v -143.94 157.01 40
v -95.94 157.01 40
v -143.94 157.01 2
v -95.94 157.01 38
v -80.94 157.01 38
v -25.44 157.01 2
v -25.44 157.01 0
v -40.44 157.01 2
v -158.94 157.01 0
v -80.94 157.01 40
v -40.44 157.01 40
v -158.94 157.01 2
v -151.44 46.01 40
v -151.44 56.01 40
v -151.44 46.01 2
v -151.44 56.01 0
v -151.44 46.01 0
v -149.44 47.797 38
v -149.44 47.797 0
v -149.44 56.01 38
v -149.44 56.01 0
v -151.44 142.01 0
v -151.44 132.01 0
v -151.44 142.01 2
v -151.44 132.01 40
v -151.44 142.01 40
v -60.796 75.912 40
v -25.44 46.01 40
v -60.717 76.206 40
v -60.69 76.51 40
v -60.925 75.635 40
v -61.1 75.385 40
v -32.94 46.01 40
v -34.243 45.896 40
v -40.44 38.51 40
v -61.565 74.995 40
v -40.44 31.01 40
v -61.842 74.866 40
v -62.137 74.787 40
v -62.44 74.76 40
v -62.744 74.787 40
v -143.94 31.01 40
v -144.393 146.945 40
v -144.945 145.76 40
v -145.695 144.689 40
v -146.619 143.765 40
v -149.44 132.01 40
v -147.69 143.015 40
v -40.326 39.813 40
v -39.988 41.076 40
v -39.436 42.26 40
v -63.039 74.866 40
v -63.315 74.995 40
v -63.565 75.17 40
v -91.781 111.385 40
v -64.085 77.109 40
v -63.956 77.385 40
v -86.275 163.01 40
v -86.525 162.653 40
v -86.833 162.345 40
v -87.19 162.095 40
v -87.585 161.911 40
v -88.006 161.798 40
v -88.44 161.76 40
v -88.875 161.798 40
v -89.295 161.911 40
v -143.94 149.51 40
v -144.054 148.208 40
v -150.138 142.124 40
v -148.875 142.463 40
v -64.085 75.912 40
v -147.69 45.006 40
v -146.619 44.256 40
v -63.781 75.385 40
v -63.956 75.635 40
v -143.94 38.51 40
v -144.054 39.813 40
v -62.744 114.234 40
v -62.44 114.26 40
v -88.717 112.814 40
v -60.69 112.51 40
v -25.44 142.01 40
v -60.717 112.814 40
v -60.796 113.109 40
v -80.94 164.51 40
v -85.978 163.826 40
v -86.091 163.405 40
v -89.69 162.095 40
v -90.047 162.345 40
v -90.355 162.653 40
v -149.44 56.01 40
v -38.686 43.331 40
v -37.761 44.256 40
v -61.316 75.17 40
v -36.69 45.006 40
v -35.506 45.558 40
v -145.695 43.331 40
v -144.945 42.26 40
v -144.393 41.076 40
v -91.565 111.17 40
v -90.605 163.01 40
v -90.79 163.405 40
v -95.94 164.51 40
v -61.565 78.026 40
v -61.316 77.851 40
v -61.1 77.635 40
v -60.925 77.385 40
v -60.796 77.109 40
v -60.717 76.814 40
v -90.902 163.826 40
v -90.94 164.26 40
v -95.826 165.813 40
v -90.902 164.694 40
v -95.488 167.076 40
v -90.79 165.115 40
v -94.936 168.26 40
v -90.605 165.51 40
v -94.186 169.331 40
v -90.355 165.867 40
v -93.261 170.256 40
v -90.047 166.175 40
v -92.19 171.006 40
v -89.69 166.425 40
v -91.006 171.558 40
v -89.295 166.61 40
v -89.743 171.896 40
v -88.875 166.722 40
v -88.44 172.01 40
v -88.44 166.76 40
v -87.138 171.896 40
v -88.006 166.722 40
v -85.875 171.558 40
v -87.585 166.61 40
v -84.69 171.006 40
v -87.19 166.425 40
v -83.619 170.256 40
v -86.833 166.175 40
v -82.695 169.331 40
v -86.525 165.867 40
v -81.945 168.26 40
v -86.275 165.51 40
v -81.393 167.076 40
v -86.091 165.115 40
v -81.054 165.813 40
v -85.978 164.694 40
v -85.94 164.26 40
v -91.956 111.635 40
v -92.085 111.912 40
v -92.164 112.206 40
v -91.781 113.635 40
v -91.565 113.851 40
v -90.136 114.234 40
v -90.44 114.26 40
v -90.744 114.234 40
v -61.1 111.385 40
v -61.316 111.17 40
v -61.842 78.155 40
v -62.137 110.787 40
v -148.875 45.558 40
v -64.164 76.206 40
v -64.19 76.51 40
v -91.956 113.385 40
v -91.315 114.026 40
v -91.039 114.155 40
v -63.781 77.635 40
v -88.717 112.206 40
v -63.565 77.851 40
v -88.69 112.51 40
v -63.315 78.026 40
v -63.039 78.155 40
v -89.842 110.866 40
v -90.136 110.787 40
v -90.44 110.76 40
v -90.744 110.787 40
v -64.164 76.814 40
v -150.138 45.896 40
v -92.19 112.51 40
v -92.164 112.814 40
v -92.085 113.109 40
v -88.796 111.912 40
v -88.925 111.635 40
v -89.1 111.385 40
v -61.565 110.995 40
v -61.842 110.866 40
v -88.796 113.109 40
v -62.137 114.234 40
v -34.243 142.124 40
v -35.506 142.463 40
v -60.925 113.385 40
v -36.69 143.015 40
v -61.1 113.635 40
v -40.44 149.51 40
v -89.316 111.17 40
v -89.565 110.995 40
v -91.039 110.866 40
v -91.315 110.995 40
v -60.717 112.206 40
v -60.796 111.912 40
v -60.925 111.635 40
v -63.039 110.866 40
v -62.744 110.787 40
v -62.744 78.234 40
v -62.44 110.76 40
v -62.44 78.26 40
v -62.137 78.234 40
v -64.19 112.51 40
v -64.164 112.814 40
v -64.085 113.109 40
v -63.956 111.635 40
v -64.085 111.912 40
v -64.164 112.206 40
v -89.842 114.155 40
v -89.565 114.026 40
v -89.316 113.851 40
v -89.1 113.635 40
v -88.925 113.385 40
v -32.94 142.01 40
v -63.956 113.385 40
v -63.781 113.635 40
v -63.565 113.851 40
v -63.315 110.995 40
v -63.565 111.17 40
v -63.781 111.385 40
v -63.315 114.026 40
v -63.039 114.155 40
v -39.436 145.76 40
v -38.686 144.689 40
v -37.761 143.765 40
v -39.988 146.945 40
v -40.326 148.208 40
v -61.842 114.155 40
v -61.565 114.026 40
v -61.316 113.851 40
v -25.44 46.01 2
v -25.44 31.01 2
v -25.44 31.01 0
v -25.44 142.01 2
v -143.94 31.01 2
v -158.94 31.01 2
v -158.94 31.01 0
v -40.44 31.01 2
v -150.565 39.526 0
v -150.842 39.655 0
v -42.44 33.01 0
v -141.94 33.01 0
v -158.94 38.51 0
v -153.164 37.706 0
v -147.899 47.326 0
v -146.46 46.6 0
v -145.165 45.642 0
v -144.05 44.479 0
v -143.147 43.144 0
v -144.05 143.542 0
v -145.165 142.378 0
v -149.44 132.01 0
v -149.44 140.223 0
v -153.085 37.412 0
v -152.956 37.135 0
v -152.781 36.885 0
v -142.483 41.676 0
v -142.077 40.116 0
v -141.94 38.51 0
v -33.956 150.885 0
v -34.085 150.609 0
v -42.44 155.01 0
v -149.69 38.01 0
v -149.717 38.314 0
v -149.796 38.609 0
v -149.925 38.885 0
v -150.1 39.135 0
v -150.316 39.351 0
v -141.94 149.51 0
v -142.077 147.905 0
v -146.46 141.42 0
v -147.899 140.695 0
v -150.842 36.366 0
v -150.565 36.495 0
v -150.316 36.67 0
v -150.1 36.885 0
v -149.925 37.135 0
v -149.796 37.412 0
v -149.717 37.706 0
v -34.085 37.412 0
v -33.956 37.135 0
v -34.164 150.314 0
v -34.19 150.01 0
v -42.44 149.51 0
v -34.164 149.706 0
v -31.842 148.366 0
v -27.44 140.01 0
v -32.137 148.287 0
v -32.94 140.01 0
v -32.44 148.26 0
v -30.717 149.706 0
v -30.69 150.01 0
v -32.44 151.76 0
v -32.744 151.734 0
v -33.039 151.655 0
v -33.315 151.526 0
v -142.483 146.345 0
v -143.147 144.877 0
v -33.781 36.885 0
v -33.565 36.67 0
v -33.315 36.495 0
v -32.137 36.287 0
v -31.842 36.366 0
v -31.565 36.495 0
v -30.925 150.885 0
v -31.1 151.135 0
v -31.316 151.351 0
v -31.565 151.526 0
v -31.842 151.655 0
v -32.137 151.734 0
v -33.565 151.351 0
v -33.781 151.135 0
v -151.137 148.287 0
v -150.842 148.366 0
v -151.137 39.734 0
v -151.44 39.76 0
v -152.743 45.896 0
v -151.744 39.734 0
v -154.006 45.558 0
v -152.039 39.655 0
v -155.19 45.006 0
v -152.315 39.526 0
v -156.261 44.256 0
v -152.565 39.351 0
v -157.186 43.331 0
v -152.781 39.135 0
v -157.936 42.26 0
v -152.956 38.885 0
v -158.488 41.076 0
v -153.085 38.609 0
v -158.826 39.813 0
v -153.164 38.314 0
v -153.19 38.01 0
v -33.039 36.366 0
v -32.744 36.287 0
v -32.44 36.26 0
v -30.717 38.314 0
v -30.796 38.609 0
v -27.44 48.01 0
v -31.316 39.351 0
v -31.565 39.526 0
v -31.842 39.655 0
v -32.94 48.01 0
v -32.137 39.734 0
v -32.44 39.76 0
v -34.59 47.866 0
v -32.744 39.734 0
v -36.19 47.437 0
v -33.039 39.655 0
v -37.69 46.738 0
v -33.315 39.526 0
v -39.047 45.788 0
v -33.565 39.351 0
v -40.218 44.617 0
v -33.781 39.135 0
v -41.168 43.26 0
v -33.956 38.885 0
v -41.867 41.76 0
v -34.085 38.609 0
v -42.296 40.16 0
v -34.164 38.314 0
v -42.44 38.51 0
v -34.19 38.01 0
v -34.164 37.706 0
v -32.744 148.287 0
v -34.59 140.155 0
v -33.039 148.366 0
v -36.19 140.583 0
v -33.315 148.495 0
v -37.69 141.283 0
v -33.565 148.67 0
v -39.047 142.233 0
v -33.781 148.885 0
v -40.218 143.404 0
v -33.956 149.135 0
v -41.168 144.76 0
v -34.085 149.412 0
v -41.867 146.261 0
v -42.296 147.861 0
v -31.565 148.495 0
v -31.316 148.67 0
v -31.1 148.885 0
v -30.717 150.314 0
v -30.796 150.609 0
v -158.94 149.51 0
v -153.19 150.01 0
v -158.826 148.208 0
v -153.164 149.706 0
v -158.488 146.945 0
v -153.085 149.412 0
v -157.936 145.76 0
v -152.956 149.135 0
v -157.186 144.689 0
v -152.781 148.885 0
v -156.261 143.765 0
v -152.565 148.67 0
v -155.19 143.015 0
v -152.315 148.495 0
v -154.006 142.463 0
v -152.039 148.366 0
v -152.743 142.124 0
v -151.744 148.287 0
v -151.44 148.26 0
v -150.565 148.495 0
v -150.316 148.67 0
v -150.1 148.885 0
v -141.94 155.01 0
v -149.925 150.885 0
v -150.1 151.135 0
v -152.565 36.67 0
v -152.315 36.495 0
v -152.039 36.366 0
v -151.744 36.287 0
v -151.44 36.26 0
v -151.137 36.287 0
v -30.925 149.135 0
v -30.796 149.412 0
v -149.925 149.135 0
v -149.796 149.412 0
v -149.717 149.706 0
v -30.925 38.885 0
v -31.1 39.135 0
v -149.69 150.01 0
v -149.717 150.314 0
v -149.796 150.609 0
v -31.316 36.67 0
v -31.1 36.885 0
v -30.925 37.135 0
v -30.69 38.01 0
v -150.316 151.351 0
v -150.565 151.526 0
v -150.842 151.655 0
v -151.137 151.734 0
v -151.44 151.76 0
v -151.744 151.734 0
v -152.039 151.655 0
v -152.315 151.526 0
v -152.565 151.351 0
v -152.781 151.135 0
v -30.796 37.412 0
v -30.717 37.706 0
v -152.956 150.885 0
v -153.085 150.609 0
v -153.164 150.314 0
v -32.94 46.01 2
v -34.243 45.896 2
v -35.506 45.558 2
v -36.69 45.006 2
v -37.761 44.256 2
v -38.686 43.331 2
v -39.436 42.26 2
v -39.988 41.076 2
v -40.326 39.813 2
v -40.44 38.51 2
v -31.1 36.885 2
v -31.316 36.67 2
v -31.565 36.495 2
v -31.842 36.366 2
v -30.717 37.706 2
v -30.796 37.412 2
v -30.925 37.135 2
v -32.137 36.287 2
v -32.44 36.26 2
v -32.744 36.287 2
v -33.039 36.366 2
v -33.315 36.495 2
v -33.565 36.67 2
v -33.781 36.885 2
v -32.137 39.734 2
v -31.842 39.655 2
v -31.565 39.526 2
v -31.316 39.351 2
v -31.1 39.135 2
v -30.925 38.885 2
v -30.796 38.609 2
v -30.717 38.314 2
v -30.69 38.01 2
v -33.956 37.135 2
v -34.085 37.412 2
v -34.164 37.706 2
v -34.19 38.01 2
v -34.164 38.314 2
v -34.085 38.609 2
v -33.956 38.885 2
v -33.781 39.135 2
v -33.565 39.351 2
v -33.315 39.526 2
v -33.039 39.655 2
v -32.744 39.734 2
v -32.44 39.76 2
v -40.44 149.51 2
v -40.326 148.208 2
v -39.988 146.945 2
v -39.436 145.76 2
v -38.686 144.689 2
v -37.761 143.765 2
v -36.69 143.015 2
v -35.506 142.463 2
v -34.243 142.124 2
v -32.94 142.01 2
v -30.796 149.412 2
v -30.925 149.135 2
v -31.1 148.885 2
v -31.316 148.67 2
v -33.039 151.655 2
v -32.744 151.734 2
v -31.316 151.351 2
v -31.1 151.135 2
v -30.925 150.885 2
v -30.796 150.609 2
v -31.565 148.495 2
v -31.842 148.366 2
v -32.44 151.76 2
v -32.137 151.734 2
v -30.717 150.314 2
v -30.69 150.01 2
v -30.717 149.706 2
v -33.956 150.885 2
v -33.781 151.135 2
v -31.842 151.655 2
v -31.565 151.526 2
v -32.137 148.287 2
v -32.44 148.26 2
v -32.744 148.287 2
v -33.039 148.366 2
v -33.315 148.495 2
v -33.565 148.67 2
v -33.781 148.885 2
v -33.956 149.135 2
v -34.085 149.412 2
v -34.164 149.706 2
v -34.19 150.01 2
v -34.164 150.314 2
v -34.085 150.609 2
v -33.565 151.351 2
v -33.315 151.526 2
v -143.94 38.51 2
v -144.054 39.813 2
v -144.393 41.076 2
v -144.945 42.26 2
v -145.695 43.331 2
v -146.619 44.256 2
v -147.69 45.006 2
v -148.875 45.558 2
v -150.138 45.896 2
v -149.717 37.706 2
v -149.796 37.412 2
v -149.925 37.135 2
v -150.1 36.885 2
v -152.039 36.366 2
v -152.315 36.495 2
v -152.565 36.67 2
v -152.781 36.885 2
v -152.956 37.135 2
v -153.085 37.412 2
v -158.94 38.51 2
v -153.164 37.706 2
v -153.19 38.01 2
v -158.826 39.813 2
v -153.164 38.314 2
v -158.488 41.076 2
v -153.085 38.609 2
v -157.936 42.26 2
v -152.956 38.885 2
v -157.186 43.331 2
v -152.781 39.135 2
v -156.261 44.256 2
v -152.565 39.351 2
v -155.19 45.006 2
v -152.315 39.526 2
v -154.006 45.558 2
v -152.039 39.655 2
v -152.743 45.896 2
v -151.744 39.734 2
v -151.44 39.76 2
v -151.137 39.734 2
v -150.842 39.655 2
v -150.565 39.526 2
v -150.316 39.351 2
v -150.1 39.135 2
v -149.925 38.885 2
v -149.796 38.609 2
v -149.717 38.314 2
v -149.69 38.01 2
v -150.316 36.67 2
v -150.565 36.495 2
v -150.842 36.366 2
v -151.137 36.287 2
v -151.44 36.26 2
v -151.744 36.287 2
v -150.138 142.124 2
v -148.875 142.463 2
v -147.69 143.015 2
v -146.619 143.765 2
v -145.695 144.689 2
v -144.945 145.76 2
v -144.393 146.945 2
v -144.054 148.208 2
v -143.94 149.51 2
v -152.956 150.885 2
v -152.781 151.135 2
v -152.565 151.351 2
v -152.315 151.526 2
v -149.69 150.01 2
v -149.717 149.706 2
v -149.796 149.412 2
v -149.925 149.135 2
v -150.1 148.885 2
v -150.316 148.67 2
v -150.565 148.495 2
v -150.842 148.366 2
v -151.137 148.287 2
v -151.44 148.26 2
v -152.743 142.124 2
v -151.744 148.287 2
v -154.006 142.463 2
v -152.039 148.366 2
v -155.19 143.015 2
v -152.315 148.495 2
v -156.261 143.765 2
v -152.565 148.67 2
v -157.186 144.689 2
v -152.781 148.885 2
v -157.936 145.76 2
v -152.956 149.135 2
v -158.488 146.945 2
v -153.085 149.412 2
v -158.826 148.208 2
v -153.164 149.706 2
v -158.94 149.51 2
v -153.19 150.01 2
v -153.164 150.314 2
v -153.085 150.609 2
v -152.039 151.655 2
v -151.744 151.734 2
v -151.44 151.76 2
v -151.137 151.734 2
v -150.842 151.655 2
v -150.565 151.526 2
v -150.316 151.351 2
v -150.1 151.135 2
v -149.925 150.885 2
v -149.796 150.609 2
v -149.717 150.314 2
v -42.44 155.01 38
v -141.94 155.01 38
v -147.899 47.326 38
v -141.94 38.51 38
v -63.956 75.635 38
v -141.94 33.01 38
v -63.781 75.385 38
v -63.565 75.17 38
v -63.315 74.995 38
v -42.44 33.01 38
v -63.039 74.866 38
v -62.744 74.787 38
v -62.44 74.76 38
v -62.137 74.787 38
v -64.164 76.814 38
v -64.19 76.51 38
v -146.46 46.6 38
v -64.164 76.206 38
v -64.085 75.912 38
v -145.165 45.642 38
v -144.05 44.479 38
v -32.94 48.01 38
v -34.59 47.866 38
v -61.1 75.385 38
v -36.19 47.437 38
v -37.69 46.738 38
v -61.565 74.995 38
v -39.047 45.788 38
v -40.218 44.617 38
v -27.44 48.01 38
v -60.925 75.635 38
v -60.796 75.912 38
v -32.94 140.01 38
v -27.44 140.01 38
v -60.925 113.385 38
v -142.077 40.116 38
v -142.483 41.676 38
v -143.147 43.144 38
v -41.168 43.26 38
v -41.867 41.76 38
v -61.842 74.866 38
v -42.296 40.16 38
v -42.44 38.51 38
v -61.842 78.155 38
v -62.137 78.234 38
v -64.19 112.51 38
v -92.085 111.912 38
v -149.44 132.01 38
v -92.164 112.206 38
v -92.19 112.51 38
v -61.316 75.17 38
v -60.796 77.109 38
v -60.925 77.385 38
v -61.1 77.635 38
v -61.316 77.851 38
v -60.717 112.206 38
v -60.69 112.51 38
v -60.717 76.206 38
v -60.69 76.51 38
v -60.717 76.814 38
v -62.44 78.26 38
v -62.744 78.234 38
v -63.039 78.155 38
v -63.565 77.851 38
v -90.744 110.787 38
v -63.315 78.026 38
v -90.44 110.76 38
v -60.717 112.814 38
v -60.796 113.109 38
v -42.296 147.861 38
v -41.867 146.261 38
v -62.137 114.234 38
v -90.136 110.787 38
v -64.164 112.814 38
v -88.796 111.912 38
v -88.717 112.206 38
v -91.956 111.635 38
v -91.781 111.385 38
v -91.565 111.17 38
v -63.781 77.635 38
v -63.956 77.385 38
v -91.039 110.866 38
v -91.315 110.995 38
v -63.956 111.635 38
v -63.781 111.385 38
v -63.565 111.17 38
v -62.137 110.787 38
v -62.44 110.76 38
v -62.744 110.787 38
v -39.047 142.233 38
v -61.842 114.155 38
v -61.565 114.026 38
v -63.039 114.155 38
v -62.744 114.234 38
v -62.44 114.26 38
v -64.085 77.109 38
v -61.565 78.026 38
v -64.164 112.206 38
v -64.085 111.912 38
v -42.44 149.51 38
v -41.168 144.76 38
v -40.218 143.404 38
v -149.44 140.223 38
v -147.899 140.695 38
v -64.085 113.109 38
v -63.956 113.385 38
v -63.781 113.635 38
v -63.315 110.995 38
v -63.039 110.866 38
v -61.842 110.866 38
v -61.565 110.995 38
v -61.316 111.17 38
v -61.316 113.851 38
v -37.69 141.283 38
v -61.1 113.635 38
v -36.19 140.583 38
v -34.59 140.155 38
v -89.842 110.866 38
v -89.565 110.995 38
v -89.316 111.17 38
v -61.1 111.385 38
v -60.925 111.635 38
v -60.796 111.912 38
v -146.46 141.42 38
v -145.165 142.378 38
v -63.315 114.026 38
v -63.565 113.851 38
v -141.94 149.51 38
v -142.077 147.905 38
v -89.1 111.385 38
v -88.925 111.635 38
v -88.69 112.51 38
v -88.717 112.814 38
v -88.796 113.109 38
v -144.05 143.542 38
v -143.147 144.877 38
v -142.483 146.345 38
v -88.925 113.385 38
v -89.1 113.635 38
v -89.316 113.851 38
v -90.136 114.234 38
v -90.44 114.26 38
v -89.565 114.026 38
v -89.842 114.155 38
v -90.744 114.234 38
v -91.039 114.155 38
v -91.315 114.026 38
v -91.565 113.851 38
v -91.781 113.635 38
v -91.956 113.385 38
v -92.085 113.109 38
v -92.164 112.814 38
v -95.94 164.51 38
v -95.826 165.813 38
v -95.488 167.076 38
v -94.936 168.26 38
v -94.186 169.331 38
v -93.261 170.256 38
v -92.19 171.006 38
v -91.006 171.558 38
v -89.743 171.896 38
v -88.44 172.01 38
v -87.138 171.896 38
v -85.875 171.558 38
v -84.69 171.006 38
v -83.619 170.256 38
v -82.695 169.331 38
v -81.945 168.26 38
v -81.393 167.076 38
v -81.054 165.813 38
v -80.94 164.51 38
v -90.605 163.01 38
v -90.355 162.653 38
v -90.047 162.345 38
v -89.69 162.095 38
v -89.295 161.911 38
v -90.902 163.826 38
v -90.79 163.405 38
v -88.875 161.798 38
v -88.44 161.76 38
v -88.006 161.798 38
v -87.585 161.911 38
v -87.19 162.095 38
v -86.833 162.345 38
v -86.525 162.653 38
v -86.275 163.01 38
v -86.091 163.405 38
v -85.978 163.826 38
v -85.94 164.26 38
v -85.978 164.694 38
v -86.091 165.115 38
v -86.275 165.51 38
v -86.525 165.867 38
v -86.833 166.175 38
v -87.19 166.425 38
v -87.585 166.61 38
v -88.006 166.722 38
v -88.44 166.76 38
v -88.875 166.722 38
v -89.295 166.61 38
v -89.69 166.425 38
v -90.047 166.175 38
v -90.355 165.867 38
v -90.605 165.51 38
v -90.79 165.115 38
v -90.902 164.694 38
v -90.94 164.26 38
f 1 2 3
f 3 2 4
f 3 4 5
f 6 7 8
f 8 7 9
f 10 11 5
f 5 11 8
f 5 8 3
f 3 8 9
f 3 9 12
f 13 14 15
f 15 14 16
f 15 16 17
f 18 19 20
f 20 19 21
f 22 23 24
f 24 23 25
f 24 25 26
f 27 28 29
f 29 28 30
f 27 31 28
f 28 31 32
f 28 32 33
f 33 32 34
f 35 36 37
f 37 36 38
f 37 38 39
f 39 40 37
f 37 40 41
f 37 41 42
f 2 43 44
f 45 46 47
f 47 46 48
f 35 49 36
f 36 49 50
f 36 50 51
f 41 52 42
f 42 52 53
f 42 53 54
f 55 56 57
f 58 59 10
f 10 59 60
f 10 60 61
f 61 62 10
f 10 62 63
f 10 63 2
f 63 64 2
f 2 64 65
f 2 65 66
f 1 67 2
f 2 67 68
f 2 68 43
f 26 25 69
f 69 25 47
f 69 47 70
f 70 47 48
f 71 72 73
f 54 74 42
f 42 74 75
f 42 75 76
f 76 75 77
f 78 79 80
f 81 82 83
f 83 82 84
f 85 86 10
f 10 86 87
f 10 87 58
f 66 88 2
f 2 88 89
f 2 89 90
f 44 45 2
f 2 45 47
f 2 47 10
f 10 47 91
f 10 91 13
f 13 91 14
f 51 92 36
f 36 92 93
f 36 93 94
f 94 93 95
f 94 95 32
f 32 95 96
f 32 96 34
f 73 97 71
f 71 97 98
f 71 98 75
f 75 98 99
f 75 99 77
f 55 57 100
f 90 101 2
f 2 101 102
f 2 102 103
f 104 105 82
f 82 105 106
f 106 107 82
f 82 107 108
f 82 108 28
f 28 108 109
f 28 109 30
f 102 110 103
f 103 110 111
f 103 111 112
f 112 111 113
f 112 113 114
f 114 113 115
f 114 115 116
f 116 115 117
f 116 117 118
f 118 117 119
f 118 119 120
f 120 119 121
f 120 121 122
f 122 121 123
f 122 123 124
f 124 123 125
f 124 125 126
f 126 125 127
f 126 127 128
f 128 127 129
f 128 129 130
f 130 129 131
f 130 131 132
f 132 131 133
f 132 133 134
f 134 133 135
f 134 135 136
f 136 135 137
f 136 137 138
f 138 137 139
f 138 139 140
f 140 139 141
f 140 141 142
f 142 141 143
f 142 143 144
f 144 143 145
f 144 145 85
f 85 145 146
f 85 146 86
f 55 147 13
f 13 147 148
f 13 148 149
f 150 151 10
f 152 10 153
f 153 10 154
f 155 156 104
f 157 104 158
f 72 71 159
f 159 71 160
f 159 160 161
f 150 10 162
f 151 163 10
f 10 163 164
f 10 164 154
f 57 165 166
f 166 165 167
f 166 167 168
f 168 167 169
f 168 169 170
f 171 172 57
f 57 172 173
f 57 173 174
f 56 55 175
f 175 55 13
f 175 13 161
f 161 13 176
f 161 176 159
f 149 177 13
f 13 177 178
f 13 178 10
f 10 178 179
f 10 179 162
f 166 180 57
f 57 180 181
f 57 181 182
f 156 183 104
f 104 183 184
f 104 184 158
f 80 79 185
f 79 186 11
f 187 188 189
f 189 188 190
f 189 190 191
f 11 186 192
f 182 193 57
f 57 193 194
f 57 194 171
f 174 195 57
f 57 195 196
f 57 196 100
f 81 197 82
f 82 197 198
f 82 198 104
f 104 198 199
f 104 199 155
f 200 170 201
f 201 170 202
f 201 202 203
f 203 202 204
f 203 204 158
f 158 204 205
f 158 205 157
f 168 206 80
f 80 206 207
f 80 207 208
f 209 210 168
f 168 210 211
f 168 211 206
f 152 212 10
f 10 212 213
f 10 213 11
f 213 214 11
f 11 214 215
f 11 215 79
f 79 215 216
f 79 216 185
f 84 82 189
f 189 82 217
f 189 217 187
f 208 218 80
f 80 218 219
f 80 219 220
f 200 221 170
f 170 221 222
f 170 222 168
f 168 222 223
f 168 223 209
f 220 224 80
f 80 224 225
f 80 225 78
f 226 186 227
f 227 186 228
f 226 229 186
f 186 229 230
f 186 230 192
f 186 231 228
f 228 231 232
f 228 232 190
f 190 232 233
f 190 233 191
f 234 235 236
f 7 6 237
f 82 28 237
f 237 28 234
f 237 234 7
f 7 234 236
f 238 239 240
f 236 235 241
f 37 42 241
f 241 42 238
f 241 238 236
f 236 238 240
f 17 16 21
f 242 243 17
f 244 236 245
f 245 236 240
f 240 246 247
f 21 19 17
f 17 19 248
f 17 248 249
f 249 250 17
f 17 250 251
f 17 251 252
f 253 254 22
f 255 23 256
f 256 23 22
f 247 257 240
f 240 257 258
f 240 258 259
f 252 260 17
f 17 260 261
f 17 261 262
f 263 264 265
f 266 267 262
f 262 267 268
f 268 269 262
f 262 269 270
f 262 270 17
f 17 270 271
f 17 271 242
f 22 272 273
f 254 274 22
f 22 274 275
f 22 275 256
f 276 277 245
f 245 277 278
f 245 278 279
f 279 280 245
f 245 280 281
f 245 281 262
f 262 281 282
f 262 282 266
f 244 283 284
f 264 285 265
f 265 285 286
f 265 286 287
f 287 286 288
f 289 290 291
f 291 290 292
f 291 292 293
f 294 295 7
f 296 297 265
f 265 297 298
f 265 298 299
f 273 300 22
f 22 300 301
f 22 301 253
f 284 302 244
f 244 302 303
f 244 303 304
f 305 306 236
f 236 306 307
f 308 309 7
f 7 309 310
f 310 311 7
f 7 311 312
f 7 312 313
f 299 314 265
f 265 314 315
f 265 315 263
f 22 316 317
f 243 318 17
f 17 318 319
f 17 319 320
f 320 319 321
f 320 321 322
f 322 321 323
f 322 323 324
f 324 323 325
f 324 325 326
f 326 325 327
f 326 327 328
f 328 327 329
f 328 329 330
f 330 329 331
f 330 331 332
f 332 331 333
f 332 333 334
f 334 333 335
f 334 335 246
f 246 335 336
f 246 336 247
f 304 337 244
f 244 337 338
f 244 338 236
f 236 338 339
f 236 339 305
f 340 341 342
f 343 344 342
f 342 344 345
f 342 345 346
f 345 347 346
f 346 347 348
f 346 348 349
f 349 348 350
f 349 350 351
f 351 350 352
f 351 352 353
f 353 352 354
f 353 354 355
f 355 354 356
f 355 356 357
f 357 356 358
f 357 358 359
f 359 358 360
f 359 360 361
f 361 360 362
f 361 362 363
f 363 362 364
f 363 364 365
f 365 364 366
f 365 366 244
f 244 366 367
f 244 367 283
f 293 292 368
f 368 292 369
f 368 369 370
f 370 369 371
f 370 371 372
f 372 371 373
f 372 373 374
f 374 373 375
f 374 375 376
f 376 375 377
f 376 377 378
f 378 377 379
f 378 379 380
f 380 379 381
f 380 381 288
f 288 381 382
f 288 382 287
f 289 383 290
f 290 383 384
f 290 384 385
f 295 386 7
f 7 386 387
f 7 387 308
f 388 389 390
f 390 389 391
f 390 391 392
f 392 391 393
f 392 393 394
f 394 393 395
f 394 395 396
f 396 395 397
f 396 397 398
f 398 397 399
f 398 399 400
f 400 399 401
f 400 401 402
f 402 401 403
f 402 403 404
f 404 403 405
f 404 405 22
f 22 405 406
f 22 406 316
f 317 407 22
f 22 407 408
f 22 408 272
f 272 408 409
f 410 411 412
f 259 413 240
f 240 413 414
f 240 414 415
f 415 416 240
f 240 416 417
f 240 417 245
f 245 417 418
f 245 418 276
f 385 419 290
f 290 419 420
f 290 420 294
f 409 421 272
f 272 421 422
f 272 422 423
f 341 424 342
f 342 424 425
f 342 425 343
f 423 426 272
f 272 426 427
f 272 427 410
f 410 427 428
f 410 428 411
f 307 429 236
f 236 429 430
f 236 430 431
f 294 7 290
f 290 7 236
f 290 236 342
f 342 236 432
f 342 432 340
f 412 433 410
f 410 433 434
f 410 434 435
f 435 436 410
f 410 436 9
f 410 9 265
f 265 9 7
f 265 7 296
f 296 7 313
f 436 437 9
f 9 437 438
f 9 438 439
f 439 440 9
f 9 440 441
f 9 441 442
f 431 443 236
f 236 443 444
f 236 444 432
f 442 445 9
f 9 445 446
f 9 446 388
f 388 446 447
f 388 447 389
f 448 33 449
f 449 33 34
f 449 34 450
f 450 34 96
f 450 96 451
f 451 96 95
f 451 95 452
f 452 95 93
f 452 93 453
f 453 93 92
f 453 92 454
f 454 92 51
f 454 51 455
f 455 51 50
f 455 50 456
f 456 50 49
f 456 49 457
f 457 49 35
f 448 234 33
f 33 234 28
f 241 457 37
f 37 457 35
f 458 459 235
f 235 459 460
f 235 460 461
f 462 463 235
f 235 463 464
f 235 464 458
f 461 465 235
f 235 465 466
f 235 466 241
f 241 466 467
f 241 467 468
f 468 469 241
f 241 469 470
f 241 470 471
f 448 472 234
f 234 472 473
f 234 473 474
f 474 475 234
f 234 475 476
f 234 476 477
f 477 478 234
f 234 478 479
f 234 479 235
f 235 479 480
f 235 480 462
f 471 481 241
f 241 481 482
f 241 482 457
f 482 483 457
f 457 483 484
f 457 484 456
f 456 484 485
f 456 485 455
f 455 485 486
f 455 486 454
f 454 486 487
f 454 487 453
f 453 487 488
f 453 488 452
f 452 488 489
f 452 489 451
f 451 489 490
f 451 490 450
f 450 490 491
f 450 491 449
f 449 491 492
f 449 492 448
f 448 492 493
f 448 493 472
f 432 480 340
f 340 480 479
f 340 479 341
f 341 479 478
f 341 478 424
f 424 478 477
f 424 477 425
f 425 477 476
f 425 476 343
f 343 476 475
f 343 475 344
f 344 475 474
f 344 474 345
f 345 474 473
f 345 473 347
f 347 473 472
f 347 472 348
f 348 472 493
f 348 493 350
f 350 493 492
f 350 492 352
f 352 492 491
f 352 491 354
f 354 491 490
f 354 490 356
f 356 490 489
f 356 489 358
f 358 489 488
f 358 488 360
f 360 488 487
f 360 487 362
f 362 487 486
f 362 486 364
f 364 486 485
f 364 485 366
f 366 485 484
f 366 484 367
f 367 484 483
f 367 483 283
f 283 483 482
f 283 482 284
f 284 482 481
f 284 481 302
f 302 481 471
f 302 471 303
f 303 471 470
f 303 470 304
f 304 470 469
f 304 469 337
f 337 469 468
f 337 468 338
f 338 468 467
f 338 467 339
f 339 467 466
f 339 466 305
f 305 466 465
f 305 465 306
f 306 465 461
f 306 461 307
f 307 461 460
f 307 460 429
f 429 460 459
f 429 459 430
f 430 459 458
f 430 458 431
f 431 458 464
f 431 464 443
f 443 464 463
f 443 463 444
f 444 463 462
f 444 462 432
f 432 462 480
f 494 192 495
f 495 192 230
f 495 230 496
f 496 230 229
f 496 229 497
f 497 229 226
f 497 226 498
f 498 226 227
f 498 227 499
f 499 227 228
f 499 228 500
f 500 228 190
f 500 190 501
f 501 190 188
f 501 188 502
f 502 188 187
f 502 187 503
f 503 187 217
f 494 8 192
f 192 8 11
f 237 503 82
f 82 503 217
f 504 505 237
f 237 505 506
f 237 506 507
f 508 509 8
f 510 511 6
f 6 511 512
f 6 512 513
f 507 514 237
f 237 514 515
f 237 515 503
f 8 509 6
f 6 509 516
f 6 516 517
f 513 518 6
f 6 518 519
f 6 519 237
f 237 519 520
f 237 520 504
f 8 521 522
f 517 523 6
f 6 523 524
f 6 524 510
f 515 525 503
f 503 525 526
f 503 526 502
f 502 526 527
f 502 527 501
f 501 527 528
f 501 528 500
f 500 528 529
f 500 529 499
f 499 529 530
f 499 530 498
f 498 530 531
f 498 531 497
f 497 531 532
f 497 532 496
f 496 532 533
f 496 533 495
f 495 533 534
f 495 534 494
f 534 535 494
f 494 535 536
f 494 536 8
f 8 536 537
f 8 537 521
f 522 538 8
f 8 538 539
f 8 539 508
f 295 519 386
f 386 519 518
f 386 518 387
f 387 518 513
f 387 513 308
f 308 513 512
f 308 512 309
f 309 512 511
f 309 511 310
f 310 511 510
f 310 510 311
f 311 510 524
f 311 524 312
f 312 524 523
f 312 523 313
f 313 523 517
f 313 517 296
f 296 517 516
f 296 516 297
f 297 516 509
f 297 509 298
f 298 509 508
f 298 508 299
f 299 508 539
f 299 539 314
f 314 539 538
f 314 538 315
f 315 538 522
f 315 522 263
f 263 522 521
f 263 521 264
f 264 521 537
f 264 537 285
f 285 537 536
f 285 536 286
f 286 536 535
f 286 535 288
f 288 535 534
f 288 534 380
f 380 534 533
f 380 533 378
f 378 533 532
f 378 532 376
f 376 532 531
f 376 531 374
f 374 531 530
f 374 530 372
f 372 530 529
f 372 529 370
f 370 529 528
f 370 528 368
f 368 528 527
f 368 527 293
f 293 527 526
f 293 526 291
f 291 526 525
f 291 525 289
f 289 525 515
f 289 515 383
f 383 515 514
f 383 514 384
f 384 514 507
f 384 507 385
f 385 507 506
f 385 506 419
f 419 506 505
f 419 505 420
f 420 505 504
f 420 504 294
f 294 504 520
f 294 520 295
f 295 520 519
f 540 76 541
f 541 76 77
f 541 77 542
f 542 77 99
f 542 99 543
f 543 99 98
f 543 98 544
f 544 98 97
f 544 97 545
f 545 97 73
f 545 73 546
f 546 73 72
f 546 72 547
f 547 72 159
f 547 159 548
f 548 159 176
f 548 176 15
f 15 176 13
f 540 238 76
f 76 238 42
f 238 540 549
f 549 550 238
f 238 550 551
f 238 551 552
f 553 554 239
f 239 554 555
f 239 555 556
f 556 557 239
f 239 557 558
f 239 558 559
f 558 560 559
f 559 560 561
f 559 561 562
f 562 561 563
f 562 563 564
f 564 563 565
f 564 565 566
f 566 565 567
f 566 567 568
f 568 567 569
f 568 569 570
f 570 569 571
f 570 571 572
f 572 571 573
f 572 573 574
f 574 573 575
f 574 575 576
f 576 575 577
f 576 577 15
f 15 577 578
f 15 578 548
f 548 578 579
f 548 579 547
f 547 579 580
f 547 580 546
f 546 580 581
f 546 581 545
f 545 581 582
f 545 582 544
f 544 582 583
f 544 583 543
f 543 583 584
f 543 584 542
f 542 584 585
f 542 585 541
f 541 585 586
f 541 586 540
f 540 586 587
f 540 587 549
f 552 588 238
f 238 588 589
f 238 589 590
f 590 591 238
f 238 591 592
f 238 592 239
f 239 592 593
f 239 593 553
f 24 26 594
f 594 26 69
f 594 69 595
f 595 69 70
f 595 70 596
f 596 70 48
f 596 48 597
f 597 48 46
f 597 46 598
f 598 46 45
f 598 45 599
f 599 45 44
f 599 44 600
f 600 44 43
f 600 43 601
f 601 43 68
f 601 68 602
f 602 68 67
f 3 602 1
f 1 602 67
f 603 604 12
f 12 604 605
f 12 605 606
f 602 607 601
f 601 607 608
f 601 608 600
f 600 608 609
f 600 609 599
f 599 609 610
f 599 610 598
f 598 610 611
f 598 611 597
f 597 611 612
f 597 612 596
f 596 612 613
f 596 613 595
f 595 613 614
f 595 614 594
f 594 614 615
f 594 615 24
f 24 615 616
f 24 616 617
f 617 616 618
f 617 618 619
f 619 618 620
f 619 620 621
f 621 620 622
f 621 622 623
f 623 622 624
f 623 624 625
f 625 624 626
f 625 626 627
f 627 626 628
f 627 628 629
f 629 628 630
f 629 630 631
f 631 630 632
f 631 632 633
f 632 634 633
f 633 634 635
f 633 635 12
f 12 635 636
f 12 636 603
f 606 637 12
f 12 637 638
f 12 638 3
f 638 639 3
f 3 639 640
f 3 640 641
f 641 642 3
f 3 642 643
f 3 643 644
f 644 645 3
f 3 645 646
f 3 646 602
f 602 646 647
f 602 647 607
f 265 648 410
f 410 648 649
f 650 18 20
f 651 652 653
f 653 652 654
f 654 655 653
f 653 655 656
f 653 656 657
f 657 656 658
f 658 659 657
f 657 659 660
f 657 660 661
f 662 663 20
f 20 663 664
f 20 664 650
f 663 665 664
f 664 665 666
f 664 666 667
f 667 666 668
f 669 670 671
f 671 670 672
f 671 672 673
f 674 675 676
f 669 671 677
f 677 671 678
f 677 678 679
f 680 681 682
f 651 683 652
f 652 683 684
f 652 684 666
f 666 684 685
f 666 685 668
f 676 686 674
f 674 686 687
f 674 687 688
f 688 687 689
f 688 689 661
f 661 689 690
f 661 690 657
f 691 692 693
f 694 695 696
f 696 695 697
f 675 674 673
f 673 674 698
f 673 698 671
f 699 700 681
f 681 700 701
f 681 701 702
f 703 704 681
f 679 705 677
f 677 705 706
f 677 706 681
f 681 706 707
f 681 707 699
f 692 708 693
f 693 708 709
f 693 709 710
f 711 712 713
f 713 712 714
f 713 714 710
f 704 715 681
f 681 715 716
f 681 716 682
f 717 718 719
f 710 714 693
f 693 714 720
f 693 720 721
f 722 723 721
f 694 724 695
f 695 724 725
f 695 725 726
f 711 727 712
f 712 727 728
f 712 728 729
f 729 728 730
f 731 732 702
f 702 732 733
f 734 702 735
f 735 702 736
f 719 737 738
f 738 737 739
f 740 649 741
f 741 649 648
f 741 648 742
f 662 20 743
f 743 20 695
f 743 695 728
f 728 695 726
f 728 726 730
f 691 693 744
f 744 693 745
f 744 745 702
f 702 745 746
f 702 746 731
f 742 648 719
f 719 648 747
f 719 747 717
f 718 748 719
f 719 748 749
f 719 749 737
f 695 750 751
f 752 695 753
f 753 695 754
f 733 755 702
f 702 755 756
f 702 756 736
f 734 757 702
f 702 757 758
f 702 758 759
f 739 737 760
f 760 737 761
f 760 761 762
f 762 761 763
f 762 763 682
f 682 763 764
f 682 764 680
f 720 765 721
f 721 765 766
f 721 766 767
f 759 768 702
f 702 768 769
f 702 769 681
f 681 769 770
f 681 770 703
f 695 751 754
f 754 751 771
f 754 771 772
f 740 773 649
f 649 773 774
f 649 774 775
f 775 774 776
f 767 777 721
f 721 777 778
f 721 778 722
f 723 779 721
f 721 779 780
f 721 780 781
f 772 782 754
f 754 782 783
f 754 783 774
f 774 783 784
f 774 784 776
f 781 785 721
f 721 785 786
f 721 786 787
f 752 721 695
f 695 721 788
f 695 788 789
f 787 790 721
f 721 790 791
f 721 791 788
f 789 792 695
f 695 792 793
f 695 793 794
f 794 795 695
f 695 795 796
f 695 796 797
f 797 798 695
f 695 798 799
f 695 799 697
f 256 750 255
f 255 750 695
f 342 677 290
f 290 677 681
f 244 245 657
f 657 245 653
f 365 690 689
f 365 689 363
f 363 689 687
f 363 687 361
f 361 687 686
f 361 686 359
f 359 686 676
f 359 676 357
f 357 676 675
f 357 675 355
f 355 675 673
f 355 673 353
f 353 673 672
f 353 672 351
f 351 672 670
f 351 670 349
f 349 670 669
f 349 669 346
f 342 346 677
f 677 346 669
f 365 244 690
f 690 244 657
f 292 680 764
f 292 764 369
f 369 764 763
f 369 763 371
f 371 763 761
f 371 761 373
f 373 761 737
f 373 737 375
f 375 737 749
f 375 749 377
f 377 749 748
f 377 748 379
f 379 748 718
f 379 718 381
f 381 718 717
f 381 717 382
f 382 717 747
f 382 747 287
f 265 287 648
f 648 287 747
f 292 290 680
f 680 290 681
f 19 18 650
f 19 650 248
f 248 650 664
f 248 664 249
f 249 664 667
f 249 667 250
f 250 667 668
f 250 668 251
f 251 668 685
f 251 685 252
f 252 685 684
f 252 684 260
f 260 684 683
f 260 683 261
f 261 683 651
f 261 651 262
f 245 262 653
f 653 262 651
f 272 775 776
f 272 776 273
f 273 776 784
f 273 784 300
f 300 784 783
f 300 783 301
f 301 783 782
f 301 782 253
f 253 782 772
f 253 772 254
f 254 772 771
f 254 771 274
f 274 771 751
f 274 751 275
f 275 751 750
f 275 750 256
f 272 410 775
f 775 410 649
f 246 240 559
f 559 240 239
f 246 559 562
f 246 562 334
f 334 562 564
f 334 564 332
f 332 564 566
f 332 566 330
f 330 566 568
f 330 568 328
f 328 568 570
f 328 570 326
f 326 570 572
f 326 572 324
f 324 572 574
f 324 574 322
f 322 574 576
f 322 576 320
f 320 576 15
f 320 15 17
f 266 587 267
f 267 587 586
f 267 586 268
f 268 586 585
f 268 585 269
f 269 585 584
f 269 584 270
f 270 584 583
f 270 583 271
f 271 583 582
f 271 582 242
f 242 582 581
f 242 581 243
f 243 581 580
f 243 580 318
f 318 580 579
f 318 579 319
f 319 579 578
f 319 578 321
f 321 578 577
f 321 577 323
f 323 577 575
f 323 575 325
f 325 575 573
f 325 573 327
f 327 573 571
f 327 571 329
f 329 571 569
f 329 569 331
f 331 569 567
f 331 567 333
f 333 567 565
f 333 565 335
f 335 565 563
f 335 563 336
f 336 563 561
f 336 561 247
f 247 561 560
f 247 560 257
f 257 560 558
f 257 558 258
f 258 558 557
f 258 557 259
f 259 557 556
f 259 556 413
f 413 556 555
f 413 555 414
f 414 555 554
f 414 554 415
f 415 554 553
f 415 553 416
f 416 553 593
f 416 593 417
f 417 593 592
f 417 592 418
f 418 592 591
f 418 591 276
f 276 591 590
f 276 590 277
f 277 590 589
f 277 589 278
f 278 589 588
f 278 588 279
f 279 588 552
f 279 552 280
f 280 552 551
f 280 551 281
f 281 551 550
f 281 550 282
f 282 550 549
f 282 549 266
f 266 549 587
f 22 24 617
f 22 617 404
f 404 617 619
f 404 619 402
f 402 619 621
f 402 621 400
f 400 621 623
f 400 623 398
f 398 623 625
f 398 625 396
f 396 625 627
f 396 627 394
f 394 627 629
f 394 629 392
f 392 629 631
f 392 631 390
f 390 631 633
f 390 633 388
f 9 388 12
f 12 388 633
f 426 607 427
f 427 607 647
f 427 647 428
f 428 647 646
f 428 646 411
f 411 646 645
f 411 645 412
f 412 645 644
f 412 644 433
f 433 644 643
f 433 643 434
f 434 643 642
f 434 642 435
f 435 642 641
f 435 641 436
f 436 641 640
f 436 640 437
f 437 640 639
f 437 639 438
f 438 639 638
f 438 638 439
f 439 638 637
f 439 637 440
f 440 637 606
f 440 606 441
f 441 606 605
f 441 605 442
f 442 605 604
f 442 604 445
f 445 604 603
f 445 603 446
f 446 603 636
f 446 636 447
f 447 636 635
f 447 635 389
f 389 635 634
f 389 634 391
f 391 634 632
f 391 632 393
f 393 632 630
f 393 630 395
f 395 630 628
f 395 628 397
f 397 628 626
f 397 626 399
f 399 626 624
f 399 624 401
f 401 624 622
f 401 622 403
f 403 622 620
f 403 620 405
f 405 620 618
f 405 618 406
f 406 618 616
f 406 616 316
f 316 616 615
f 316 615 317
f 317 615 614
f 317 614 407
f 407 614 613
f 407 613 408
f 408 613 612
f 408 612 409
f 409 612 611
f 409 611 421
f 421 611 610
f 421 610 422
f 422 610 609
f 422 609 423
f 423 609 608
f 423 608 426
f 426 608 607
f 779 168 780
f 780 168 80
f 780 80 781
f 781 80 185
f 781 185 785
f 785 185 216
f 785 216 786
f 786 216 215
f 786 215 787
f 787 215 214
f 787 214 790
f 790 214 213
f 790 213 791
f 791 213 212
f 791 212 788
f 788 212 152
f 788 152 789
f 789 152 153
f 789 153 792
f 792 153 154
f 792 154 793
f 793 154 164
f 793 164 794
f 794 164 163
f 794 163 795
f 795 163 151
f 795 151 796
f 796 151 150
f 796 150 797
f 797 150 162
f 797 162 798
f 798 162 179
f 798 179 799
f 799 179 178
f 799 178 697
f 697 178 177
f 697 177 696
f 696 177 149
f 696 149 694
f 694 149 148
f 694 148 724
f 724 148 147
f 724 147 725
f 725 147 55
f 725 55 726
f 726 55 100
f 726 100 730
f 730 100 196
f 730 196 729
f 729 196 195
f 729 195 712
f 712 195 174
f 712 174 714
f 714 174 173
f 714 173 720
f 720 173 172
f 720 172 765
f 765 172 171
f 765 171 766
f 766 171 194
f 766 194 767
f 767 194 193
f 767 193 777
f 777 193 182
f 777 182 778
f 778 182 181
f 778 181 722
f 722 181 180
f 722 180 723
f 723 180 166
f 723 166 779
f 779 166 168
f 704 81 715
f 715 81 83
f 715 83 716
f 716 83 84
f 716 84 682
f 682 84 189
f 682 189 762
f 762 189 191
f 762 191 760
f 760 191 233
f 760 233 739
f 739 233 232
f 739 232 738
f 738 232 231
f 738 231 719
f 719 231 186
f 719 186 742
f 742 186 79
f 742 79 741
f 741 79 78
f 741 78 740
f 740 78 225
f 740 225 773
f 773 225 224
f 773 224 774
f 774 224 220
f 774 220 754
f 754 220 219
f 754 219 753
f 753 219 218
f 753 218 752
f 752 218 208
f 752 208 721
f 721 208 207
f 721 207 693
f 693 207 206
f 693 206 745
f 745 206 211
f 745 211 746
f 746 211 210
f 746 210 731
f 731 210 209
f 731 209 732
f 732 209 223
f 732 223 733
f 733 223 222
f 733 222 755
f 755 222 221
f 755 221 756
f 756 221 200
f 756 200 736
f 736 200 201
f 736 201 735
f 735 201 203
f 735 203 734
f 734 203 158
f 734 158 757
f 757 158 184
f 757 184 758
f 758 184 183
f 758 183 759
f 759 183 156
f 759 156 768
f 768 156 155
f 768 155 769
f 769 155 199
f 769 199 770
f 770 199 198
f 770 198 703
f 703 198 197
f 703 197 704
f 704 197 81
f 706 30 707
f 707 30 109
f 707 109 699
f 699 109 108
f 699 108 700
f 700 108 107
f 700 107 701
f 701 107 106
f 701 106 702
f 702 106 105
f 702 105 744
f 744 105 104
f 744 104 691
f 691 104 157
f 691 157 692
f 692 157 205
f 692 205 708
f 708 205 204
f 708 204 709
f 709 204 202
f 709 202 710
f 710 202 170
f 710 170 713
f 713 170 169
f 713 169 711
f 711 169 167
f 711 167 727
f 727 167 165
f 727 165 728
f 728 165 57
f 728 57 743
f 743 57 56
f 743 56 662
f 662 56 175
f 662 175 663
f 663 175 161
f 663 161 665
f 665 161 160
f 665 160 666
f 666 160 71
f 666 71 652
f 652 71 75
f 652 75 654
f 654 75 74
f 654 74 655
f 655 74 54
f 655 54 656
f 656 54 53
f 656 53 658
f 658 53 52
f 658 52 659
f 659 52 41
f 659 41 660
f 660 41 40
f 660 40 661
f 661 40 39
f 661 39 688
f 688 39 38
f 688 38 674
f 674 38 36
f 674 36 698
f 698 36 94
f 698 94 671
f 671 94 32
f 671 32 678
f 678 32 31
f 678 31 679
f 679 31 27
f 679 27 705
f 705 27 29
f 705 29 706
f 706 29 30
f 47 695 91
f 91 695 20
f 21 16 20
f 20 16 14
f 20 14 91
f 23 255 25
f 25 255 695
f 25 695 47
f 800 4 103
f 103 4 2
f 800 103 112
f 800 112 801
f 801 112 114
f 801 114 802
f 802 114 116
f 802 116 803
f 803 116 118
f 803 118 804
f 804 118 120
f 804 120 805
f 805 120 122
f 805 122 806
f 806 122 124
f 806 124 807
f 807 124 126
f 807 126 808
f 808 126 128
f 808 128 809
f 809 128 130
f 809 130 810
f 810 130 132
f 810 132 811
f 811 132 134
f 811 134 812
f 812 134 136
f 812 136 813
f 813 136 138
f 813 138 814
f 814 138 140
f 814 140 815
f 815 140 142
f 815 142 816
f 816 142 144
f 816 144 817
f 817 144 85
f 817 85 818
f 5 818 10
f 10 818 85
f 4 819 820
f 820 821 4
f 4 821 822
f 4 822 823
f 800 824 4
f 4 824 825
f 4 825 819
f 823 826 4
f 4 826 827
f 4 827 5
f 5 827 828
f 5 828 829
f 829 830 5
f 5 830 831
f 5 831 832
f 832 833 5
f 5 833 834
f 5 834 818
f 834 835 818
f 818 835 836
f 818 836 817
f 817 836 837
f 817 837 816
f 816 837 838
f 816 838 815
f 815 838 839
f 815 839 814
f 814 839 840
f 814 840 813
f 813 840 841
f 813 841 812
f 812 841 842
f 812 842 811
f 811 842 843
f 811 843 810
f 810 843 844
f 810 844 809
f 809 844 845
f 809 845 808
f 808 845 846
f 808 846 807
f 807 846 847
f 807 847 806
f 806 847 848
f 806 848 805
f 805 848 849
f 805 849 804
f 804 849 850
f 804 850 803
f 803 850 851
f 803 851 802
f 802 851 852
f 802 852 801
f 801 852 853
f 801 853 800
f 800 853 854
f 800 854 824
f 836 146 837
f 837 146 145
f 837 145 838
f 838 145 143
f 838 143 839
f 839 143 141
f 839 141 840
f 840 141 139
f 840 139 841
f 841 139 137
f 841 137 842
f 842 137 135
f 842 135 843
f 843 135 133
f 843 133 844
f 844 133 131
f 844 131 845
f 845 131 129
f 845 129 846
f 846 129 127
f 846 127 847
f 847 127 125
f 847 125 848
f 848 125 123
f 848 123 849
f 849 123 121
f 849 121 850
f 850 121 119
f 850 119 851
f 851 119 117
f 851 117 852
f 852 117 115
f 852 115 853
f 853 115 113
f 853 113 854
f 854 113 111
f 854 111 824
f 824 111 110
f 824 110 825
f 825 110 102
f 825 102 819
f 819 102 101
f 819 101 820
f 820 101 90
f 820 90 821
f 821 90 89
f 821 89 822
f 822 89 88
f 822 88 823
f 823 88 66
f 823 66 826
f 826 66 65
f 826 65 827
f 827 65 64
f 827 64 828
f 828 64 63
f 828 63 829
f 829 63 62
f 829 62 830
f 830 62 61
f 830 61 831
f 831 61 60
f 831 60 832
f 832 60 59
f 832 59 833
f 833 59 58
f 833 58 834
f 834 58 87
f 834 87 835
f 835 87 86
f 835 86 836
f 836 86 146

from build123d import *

# Parameters (mm, degrees)
ESQUISSE1_W                = 126
ESQUISSE1_H                = 126
BOSS_EXTRU_1_DEPTH         = 40
ENL_V_MAT_EXTRU_1_DEPTH    = 38
ENL_V_MAT_EXTRU_2_REACH    = 223.428
ESQUISSE4_R                = 1.75
ENL_V_MAT_EXTRU_5_DEPTH    = 38
COQUE1_DEPTH               = 38
BOSS_EXTRU_3_DEPTH         = 2
ENL_V_MAT_EXTRU_6_REACH    = 228.624
ESQUISSE13_R               = 1.75
ENL_V_MAT_EXTRU_7_REACH    = 228.968
ESQUISSE14_R               = 1.75
R_P_TITION_LIN_AIRE1_COUNT = 2
R_P_TITION_LIN_AIRE1_PITCH = 28
ENL_V_MAT_EXTRU_8_REACH    = 228.968
ESQUISSE15_R               = 1.75
ESQUISSE16_W               = 40
ESQUISSE16_H               = 76
ENL_V_MAT_EXTRU_9_DEPTH    = 2
BOSS_EXTRU_4_DEPTH         = 2
ENL_V_MAT_EXTRU_10_REACH   = 239.591
ESQUISSE19_R               = 2.5


# Read off the part's stored shape, not the designer's step: Coque1
with BuildPart() as part:
    # Esquisse1 → Boss.-Extru.1 (new body)
    with BuildSketch(Plane.XY):
        with Locations((-88.440384558, 94.010362694)):
            Rectangle(ESQUISSE1_W, ESQUISSE1_H)
    extrude(amount=BOSS_EXTRU_1_DEPTH)

    # Esquisse2 → Enlèv. mat.-Extru.1 (cut)
    with BuildSketch(Plane.XY.offset(40)):
        with BuildLine():
            Line((-40.440384558, 31.010362694), (-25.440384558, 31.010362694))
            Line((-25.440384558, 31.010362694), (-25.440384558, 46.010362694))
            Line((-25.440384558, 46.010362694), (-32.940384558, 46.010362694))
            ThreePointArc((-32.940384558, 46.010362694), (-38.243685417, 43.813663553), (-40.440384558, 38.510362694))
            Line((-40.440384558, 38.510362694), (-40.440384558, 31.010362694))
        make_face()
    enl_v_mat_extru_1 = extrude(amount=-ENL_V_MAT_EXTRU_1_DEPTH, mode=Mode.SUBTRACT)

    # Esquisse4 → Enlèv. mat.-Extru.2 (cut, up to next)
    with BuildSketch(Plane.XY.offset(2), mode=Mode.PRIVATE) as enl_v_mat_extru_2_sk1:
        with Locations((-32.440384558, 38.010362694)):
            Circle(ESQUISSE4_R)
    enl_v_mat_extru_2_tool1 = extrude(enl_v_mat_extru_2_sk1.sketch, amount=-ENL_V_MAT_EXTRU_2_REACH, mode=Mode.PRIVATE) & part.part
    enl_v_mat_extru_2 = enl_v_mat_extru_2_tool1.solids().sort_by_distance((-32.440385, 38.010363, 2))[0]
    add(enl_v_mat_extru_2, mode=Mode.SUBTRACT)

    # Symétrie1: Enlèv. mat.-Extru.1, Enlèv. mat.-Extru.2 across plane
    add(enl_v_mat_extru_1.mirror(Plane(origin=(0, 94.010362694, 0), x_dir=(0, 0, 1), z_dir=(0, -1, 0))), mode=Mode.SUBTRACT)
    add(enl_v_mat_extru_2.mirror(Plane(origin=(0, 94.010362694, 0), x_dir=(0, 0, 1), z_dir=(0, -1, 0))), mode=Mode.SUBTRACT)

    # Esquisse10 → Enlèv. mat.-Extru.5 (cut)
    with BuildSketch(Plane.XY.offset(40)):
        with BuildLine():
            Line((-151.440384558, 46.010362694), (-151.440384558, 31.010362694))
            Line((-151.440384558, 31.010362694), (-143.940384558, 31.010362694))
            Line((-143.940384558, 31.010362694), (-143.940384558, 38.510362694))
            ThreePointArc((-143.940384558, 38.510362694), (-146.137083699, 43.813663553), (-151.440384558, 46.010362694))
        make_face()
    enl_v_mat_extru_5 = extrude(amount=-ENL_V_MAT_EXTRU_5_DEPTH, mode=Mode.SUBTRACT)

    # Symétrie3: Enlèv. mat.-Extru.5 across plane
    add(enl_v_mat_extru_5.mirror(Plane(origin=(0, 94.010362694, 0), x_dir=(0, 0, 1), z_dir=(0, -1, 0))), mode=Mode.SUBTRACT)

    # Coque1 outline → Coque1 (cut)
    with BuildSketch(Plane.XY):
        with BuildLine():
            Line((-42.440384558, 155.010362694), (-141.940384558, 155.010362694))
            Line((-141.940384558, 155.010362694), (-141.940384558, 149.510362694))
            ThreePointArc((-141.940384558, 149.510362694), (-144.049511808, 143.541694501), (-149.440384558, 140.223274884))
            Line((-149.440384558, 140.223274884), (-149.440384558, 47.797450505))
            ThreePointArc((-149.440384558, 47.797450505), (-144.049511808, 44.479030887), (-141.940384558, 38.510362694))
            Line((-141.940384558, 38.510362694), (-141.940384558, 33.010362694))
            Line((-141.940384558, 33.010362694), (-42.440384558, 33.010362694))
            Line((-42.440384558, 33.010362694), (-42.440384558, 38.510362694))
            ThreePointArc((-42.440384558, 38.510362694), (-39.657898979, 45.227877116), (-32.940384558, 48.010362694))
            Line((-32.940384558, 48.010362694), (-27.440384558, 48.010362694))
            Line((-27.440384558, 48.010362694), (-27.440384558, 140.010362694))
            Line((-27.440384558, 140.010362694), (-32.940384558, 140.010362694))
            ThreePointArc((-32.940384558, 140.010362694), (-39.657898979, 142.792848273), (-42.440384558, 149.510362694))
            Line((-42.440384558, 149.510362694), (-42.440384558, 155.010362694))
        make_face()
    extrude(amount=COQUE1_DEPTH, mode=Mode.SUBTRACT)

    # Esquisse12 → Boss.-Extru.3 (add)
    with BuildSketch(Plane.XY.offset(2)):
        with BuildLine():
            Line((-158.940384558, 31.010362694), (-158.940384558, 38.510362694))
            ThreePointArc((-158.940384558, 38.510362694), (-156.743685417, 43.813663553), (-151.440384558, 46.010362694))
            Line((-151.440384558, 46.010362694), (-151.440384558, 31.010362694))
            Line((-151.440384558, 31.010362694), (-158.940384558, 31.010362694))
        make_face()
    boss_extru_3 = extrude(amount=-BOSS_EXTRU_3_DEPTH)

    # Esquisse13 → Enlèv. mat.-Extru.6 (cut, up to next)
    with BuildSketch(Plane.XY.offset(2), mode=Mode.PRIVATE) as enl_v_mat_extru_6_sk1:
        with Locations((-151.440384558, 38.010362694)):
            Circle(ESQUISSE13_R)
    enl_v_mat_extru_6_tool1 = extrude(enl_v_mat_extru_6_sk1.sketch, amount=-ENL_V_MAT_EXTRU_6_REACH, mode=Mode.PRIVATE) & part.part
    enl_v_mat_extru_6 = enl_v_mat_extru_6_tool1.solids().sort_by_distance((-151.440385, 38.010363, 2))[0]
    add(enl_v_mat_extru_6, mode=Mode.SUBTRACT)

    # Symétrie5: Boss.-Extru.3, Enlèv. mat.-Extru.6 across plane
    add(boss_extru_3.mirror(Plane(origin=(0, 94.010362694, 0), x_dir=(0, 0, 1), z_dir=(0, -1, 0))))
    add(enl_v_mat_extru_6.mirror(Plane(origin=(0, 94.010362694, 0), x_dir=(0, 0, 1), z_dir=(0, -1, 0))), mode=Mode.SUBTRACT)

    # Esquisse14 → Enlèv. mat.-Extru.7 (cut, up to next)
    with BuildSketch(Plane.XY.offset(40), mode=Mode.PRIVATE) as enl_v_mat_extru_7_sk1:
        with Locations((-90.440384558, 112.510362694)):
            Circle(ESQUISSE14_R)
    enl_v_mat_extru_7_tool1 = extrude(enl_v_mat_extru_7_sk1.sketch, amount=-ENL_V_MAT_EXTRU_7_REACH, mode=Mode.PRIVATE) & part.part
    enl_v_mat_extru_7 = enl_v_mat_extru_7_tool1.solids().sort_by_distance((-90.440385, 112.510363, 40))[0]
    add(enl_v_mat_extru_7, mode=Mode.SUBTRACT)

    # Répétition linéaire1: Enlèv. mat.-Extru.7 ×2
    with Locations(*[(i * R_P_TITION_LIN_AIRE1_PITCH, 0, 0) for i in range(1, R_P_TITION_LIN_AIRE1_COUNT)]):
        add(enl_v_mat_extru_7, mode=Mode.SUBTRACT)

    # Esquisse15 → Enlèv. mat.-Extru.8 (cut, up to next)
    with BuildSketch(Plane.XY.offset(40), mode=Mode.PRIVATE) as enl_v_mat_extru_8_sk1:
        with Locations((-62.440384558, 76.510362694)):
            Circle(ESQUISSE15_R)
    enl_v_mat_extru_8_tool1 = extrude(enl_v_mat_extru_8_sk1.sketch, amount=-ENL_V_MAT_EXTRU_8_REACH, mode=Mode.PRIVATE) & part.part
    add(enl_v_mat_extru_8_tool1.solids().sort_by_distance((-62.440385, 76.510363, 40))[0], mode=Mode.SUBTRACT)

    # Esquisse16 → Enlèv. mat.-Extru.9 (cut)
    with BuildSketch(Plane.ZY.offset(151.440384558)):
        with Locations((20, 94.010362694)):
            Rectangle(ESQUISSE16_W, ESQUISSE16_H)
    extrude(amount=-ENL_V_MAT_EXTRU_9_DEPTH, mode=Mode.SUBTRACT)

    # Esquisse17 → Boss.-Extru.4 (add)
    with BuildSketch(Plane.XY.offset(40)):
        with BuildLine():
            Line((-95.940384558, 157.010362694), (-80.940384558, 157.010362694))
            Line((-80.940384558, 157.010362694), (-80.940384558, 164.510362694))
            ThreePointArc((-80.940384558, 164.510362694), (-88.440384558, 172.010362694), (-95.940384558, 164.510362694))
            Line((-95.940384558, 164.510362694), (-95.940384558, 157.010362694))
        make_face()
    extrude(amount=-BOSS_EXTRU_4_DEPTH)

    # Esquisse19 → Enlèv. mat.-Extru.10 (cut, up to next)
    with BuildSketch(Plane.XY.offset(40), mode=Mode.PRIVATE) as enl_v_mat_extru_10_sk1:
        with Locations((-88.440384558, 164.260362694)):
            Circle(ESQUISSE19_R)
    enl_v_mat_extru_10_tool1 = extrude(enl_v_mat_extru_10_sk1.sketch, amount=-ENL_V_MAT_EXTRU_10_REACH, mode=Mode.PRIVATE) & part.part
    add(enl_v_mat_extru_10_tool1.solids().sort_by_distance((-88.440385, 164.260363, 40))[0], mode=Mode.SUBTRACT)


solid = part.part
